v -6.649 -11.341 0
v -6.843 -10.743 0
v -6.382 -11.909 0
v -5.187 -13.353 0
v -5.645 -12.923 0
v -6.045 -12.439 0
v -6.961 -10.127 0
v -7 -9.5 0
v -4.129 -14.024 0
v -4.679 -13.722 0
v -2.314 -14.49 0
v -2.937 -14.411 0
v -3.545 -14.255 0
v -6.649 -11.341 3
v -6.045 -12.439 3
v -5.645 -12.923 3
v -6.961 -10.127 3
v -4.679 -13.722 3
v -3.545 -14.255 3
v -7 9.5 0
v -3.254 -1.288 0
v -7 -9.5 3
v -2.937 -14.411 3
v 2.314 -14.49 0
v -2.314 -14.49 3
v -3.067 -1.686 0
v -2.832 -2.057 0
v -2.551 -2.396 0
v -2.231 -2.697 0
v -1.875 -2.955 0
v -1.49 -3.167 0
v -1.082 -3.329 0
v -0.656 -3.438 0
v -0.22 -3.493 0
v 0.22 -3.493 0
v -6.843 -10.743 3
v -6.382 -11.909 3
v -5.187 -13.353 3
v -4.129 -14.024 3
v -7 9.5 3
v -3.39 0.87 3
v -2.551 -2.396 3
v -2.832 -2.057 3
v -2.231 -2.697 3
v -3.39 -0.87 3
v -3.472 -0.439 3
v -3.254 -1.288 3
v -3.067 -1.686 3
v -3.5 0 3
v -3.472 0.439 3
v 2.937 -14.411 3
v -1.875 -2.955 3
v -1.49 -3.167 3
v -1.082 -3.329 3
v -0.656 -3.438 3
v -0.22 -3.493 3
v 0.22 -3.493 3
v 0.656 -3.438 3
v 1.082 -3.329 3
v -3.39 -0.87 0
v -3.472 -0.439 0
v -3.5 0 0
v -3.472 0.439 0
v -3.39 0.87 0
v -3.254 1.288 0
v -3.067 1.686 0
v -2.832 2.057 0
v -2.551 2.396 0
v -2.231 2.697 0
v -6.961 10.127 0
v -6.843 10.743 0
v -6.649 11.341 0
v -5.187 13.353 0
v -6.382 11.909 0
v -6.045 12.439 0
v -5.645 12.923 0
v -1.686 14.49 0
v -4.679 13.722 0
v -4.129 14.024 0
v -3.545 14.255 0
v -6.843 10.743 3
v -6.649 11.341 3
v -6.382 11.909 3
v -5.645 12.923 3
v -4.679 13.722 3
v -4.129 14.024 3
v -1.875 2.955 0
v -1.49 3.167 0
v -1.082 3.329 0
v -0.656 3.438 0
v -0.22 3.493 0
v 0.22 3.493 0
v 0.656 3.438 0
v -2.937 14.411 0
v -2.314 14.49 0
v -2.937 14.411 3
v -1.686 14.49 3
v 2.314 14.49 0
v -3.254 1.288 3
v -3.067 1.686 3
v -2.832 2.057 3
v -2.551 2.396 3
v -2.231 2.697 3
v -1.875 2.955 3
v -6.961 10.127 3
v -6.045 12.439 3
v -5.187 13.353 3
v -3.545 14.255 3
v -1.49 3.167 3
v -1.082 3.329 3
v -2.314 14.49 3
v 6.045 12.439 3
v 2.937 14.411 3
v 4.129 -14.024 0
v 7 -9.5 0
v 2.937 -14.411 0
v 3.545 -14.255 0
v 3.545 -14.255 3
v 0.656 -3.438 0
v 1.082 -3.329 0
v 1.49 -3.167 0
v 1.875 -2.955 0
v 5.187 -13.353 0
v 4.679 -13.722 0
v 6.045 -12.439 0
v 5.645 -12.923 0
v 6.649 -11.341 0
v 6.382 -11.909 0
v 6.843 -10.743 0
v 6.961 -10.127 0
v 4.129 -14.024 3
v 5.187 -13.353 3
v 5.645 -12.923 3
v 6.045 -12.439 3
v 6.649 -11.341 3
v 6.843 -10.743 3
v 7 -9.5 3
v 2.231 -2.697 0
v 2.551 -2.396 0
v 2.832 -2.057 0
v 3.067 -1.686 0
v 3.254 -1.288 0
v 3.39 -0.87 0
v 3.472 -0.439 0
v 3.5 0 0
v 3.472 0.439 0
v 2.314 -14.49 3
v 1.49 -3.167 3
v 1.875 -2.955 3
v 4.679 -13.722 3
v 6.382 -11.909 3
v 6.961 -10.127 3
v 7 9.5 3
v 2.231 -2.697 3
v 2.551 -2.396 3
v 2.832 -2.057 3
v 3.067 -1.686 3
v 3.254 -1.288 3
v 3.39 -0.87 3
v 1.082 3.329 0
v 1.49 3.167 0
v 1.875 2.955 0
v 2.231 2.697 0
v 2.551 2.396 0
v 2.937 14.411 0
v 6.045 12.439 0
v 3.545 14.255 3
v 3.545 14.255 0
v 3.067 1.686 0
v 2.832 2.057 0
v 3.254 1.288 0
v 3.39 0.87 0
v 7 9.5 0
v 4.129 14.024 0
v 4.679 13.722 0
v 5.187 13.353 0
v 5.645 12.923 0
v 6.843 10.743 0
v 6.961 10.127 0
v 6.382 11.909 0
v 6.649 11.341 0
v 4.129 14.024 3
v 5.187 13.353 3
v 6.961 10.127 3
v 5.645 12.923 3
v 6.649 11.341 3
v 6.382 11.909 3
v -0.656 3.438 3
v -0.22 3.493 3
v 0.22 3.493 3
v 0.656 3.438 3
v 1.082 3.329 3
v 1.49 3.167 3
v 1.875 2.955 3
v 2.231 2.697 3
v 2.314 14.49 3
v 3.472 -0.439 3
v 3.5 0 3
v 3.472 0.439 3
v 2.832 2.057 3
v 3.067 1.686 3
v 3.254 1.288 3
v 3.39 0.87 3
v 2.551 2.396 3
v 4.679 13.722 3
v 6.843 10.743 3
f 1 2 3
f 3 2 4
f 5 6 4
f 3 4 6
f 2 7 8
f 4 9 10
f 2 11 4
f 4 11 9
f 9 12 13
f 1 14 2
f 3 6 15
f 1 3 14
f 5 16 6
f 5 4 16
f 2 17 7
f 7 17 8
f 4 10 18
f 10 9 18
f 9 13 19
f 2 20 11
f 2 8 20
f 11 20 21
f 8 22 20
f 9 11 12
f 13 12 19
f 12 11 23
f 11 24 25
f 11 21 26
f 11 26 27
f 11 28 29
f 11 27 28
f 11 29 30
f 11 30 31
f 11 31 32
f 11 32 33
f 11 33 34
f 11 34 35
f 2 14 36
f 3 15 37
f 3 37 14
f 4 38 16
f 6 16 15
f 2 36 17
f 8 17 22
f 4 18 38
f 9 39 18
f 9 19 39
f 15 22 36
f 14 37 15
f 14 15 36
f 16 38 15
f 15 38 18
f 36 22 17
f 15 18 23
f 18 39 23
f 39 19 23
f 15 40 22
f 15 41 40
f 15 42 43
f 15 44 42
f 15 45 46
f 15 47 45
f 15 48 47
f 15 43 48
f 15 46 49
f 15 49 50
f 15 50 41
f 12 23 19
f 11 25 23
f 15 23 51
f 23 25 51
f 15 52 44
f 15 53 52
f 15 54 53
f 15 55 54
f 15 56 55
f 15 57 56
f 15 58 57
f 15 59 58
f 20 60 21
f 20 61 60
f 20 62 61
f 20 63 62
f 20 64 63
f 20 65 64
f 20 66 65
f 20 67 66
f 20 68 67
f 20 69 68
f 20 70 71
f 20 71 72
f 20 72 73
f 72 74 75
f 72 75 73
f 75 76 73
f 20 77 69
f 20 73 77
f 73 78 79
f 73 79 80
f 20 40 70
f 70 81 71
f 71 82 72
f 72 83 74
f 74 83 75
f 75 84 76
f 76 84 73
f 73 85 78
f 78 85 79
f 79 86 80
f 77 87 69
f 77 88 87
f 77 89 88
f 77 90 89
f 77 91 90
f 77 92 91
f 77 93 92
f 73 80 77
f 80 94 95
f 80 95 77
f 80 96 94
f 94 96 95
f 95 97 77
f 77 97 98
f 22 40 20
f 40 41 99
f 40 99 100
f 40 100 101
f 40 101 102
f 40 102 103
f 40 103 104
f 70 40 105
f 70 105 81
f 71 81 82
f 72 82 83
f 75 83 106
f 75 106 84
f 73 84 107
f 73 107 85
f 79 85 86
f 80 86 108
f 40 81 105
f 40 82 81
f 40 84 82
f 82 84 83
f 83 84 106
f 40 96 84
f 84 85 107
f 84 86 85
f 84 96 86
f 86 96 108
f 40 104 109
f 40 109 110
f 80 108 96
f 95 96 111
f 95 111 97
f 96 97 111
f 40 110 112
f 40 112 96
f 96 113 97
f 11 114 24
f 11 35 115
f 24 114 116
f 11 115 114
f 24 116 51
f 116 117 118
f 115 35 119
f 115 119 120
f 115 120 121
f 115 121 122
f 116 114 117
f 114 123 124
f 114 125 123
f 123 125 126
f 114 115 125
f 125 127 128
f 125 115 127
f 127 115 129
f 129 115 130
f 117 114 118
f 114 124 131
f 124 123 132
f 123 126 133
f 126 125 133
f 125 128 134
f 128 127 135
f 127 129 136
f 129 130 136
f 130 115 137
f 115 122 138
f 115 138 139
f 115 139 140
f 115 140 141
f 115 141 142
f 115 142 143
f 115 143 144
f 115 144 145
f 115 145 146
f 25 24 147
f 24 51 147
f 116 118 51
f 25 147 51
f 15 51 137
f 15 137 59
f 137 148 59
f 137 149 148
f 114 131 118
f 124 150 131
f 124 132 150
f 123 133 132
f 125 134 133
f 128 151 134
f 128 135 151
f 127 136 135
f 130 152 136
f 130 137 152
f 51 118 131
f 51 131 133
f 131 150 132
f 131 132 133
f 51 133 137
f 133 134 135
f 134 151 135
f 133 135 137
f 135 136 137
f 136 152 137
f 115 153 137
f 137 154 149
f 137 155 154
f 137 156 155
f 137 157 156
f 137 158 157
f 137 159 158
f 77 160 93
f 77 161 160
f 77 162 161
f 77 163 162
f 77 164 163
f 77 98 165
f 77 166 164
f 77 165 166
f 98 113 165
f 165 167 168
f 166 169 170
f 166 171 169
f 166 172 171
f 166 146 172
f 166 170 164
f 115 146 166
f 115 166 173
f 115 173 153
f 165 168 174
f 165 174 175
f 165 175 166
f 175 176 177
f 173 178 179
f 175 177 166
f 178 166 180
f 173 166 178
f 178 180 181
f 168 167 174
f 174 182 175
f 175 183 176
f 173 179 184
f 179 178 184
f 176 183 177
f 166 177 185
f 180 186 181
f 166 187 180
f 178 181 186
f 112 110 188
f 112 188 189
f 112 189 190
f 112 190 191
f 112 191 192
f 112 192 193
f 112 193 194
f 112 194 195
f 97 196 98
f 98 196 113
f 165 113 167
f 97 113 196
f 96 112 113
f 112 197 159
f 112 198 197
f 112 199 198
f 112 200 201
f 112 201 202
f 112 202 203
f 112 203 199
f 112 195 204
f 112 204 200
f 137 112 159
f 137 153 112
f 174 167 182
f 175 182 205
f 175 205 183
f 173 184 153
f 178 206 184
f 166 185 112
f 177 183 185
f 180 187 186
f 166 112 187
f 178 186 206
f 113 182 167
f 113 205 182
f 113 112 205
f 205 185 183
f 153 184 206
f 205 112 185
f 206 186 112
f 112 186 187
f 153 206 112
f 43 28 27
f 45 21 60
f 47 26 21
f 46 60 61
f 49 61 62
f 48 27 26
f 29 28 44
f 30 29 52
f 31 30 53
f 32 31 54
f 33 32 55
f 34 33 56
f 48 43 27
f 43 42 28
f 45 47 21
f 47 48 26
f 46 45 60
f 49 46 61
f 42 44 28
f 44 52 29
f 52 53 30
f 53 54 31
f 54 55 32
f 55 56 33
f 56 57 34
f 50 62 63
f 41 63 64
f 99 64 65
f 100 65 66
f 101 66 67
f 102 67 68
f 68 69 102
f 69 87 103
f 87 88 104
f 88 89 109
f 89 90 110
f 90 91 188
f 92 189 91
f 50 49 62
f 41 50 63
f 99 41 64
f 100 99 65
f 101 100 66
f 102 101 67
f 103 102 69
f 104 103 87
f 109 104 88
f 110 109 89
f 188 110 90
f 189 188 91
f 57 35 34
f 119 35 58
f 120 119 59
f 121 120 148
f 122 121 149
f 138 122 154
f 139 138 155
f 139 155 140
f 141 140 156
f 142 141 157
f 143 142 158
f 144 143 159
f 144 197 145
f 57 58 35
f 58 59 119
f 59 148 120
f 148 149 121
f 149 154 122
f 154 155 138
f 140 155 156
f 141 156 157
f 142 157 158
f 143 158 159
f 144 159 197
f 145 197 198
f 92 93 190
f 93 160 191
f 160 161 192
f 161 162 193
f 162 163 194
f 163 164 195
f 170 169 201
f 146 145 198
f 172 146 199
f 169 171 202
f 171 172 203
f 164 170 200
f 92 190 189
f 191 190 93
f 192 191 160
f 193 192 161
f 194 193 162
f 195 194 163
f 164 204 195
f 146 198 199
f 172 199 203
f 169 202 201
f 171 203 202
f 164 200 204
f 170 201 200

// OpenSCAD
$fn = 50;

difference() {
	union() {
		hull() {
			translate(v = [-2.0, 9.5, 0]) {
				cylinder(h = 3, r = 5);
			}
			translate(v = [2.0, 9.5, 0]) {
				cylinder(h = 3, r = 5);
			}
			translate(v = [-2.0, -9.5, 0]) {
				cylinder(h = 3, r = 5);
			}
			translate(v = [2.0, -9.5, 0]) {
				cylinder(h = 3, r = 5);
			}
		}
	}
	union() {
		cylinder(h = 3, r = 3.5);
	}
}
